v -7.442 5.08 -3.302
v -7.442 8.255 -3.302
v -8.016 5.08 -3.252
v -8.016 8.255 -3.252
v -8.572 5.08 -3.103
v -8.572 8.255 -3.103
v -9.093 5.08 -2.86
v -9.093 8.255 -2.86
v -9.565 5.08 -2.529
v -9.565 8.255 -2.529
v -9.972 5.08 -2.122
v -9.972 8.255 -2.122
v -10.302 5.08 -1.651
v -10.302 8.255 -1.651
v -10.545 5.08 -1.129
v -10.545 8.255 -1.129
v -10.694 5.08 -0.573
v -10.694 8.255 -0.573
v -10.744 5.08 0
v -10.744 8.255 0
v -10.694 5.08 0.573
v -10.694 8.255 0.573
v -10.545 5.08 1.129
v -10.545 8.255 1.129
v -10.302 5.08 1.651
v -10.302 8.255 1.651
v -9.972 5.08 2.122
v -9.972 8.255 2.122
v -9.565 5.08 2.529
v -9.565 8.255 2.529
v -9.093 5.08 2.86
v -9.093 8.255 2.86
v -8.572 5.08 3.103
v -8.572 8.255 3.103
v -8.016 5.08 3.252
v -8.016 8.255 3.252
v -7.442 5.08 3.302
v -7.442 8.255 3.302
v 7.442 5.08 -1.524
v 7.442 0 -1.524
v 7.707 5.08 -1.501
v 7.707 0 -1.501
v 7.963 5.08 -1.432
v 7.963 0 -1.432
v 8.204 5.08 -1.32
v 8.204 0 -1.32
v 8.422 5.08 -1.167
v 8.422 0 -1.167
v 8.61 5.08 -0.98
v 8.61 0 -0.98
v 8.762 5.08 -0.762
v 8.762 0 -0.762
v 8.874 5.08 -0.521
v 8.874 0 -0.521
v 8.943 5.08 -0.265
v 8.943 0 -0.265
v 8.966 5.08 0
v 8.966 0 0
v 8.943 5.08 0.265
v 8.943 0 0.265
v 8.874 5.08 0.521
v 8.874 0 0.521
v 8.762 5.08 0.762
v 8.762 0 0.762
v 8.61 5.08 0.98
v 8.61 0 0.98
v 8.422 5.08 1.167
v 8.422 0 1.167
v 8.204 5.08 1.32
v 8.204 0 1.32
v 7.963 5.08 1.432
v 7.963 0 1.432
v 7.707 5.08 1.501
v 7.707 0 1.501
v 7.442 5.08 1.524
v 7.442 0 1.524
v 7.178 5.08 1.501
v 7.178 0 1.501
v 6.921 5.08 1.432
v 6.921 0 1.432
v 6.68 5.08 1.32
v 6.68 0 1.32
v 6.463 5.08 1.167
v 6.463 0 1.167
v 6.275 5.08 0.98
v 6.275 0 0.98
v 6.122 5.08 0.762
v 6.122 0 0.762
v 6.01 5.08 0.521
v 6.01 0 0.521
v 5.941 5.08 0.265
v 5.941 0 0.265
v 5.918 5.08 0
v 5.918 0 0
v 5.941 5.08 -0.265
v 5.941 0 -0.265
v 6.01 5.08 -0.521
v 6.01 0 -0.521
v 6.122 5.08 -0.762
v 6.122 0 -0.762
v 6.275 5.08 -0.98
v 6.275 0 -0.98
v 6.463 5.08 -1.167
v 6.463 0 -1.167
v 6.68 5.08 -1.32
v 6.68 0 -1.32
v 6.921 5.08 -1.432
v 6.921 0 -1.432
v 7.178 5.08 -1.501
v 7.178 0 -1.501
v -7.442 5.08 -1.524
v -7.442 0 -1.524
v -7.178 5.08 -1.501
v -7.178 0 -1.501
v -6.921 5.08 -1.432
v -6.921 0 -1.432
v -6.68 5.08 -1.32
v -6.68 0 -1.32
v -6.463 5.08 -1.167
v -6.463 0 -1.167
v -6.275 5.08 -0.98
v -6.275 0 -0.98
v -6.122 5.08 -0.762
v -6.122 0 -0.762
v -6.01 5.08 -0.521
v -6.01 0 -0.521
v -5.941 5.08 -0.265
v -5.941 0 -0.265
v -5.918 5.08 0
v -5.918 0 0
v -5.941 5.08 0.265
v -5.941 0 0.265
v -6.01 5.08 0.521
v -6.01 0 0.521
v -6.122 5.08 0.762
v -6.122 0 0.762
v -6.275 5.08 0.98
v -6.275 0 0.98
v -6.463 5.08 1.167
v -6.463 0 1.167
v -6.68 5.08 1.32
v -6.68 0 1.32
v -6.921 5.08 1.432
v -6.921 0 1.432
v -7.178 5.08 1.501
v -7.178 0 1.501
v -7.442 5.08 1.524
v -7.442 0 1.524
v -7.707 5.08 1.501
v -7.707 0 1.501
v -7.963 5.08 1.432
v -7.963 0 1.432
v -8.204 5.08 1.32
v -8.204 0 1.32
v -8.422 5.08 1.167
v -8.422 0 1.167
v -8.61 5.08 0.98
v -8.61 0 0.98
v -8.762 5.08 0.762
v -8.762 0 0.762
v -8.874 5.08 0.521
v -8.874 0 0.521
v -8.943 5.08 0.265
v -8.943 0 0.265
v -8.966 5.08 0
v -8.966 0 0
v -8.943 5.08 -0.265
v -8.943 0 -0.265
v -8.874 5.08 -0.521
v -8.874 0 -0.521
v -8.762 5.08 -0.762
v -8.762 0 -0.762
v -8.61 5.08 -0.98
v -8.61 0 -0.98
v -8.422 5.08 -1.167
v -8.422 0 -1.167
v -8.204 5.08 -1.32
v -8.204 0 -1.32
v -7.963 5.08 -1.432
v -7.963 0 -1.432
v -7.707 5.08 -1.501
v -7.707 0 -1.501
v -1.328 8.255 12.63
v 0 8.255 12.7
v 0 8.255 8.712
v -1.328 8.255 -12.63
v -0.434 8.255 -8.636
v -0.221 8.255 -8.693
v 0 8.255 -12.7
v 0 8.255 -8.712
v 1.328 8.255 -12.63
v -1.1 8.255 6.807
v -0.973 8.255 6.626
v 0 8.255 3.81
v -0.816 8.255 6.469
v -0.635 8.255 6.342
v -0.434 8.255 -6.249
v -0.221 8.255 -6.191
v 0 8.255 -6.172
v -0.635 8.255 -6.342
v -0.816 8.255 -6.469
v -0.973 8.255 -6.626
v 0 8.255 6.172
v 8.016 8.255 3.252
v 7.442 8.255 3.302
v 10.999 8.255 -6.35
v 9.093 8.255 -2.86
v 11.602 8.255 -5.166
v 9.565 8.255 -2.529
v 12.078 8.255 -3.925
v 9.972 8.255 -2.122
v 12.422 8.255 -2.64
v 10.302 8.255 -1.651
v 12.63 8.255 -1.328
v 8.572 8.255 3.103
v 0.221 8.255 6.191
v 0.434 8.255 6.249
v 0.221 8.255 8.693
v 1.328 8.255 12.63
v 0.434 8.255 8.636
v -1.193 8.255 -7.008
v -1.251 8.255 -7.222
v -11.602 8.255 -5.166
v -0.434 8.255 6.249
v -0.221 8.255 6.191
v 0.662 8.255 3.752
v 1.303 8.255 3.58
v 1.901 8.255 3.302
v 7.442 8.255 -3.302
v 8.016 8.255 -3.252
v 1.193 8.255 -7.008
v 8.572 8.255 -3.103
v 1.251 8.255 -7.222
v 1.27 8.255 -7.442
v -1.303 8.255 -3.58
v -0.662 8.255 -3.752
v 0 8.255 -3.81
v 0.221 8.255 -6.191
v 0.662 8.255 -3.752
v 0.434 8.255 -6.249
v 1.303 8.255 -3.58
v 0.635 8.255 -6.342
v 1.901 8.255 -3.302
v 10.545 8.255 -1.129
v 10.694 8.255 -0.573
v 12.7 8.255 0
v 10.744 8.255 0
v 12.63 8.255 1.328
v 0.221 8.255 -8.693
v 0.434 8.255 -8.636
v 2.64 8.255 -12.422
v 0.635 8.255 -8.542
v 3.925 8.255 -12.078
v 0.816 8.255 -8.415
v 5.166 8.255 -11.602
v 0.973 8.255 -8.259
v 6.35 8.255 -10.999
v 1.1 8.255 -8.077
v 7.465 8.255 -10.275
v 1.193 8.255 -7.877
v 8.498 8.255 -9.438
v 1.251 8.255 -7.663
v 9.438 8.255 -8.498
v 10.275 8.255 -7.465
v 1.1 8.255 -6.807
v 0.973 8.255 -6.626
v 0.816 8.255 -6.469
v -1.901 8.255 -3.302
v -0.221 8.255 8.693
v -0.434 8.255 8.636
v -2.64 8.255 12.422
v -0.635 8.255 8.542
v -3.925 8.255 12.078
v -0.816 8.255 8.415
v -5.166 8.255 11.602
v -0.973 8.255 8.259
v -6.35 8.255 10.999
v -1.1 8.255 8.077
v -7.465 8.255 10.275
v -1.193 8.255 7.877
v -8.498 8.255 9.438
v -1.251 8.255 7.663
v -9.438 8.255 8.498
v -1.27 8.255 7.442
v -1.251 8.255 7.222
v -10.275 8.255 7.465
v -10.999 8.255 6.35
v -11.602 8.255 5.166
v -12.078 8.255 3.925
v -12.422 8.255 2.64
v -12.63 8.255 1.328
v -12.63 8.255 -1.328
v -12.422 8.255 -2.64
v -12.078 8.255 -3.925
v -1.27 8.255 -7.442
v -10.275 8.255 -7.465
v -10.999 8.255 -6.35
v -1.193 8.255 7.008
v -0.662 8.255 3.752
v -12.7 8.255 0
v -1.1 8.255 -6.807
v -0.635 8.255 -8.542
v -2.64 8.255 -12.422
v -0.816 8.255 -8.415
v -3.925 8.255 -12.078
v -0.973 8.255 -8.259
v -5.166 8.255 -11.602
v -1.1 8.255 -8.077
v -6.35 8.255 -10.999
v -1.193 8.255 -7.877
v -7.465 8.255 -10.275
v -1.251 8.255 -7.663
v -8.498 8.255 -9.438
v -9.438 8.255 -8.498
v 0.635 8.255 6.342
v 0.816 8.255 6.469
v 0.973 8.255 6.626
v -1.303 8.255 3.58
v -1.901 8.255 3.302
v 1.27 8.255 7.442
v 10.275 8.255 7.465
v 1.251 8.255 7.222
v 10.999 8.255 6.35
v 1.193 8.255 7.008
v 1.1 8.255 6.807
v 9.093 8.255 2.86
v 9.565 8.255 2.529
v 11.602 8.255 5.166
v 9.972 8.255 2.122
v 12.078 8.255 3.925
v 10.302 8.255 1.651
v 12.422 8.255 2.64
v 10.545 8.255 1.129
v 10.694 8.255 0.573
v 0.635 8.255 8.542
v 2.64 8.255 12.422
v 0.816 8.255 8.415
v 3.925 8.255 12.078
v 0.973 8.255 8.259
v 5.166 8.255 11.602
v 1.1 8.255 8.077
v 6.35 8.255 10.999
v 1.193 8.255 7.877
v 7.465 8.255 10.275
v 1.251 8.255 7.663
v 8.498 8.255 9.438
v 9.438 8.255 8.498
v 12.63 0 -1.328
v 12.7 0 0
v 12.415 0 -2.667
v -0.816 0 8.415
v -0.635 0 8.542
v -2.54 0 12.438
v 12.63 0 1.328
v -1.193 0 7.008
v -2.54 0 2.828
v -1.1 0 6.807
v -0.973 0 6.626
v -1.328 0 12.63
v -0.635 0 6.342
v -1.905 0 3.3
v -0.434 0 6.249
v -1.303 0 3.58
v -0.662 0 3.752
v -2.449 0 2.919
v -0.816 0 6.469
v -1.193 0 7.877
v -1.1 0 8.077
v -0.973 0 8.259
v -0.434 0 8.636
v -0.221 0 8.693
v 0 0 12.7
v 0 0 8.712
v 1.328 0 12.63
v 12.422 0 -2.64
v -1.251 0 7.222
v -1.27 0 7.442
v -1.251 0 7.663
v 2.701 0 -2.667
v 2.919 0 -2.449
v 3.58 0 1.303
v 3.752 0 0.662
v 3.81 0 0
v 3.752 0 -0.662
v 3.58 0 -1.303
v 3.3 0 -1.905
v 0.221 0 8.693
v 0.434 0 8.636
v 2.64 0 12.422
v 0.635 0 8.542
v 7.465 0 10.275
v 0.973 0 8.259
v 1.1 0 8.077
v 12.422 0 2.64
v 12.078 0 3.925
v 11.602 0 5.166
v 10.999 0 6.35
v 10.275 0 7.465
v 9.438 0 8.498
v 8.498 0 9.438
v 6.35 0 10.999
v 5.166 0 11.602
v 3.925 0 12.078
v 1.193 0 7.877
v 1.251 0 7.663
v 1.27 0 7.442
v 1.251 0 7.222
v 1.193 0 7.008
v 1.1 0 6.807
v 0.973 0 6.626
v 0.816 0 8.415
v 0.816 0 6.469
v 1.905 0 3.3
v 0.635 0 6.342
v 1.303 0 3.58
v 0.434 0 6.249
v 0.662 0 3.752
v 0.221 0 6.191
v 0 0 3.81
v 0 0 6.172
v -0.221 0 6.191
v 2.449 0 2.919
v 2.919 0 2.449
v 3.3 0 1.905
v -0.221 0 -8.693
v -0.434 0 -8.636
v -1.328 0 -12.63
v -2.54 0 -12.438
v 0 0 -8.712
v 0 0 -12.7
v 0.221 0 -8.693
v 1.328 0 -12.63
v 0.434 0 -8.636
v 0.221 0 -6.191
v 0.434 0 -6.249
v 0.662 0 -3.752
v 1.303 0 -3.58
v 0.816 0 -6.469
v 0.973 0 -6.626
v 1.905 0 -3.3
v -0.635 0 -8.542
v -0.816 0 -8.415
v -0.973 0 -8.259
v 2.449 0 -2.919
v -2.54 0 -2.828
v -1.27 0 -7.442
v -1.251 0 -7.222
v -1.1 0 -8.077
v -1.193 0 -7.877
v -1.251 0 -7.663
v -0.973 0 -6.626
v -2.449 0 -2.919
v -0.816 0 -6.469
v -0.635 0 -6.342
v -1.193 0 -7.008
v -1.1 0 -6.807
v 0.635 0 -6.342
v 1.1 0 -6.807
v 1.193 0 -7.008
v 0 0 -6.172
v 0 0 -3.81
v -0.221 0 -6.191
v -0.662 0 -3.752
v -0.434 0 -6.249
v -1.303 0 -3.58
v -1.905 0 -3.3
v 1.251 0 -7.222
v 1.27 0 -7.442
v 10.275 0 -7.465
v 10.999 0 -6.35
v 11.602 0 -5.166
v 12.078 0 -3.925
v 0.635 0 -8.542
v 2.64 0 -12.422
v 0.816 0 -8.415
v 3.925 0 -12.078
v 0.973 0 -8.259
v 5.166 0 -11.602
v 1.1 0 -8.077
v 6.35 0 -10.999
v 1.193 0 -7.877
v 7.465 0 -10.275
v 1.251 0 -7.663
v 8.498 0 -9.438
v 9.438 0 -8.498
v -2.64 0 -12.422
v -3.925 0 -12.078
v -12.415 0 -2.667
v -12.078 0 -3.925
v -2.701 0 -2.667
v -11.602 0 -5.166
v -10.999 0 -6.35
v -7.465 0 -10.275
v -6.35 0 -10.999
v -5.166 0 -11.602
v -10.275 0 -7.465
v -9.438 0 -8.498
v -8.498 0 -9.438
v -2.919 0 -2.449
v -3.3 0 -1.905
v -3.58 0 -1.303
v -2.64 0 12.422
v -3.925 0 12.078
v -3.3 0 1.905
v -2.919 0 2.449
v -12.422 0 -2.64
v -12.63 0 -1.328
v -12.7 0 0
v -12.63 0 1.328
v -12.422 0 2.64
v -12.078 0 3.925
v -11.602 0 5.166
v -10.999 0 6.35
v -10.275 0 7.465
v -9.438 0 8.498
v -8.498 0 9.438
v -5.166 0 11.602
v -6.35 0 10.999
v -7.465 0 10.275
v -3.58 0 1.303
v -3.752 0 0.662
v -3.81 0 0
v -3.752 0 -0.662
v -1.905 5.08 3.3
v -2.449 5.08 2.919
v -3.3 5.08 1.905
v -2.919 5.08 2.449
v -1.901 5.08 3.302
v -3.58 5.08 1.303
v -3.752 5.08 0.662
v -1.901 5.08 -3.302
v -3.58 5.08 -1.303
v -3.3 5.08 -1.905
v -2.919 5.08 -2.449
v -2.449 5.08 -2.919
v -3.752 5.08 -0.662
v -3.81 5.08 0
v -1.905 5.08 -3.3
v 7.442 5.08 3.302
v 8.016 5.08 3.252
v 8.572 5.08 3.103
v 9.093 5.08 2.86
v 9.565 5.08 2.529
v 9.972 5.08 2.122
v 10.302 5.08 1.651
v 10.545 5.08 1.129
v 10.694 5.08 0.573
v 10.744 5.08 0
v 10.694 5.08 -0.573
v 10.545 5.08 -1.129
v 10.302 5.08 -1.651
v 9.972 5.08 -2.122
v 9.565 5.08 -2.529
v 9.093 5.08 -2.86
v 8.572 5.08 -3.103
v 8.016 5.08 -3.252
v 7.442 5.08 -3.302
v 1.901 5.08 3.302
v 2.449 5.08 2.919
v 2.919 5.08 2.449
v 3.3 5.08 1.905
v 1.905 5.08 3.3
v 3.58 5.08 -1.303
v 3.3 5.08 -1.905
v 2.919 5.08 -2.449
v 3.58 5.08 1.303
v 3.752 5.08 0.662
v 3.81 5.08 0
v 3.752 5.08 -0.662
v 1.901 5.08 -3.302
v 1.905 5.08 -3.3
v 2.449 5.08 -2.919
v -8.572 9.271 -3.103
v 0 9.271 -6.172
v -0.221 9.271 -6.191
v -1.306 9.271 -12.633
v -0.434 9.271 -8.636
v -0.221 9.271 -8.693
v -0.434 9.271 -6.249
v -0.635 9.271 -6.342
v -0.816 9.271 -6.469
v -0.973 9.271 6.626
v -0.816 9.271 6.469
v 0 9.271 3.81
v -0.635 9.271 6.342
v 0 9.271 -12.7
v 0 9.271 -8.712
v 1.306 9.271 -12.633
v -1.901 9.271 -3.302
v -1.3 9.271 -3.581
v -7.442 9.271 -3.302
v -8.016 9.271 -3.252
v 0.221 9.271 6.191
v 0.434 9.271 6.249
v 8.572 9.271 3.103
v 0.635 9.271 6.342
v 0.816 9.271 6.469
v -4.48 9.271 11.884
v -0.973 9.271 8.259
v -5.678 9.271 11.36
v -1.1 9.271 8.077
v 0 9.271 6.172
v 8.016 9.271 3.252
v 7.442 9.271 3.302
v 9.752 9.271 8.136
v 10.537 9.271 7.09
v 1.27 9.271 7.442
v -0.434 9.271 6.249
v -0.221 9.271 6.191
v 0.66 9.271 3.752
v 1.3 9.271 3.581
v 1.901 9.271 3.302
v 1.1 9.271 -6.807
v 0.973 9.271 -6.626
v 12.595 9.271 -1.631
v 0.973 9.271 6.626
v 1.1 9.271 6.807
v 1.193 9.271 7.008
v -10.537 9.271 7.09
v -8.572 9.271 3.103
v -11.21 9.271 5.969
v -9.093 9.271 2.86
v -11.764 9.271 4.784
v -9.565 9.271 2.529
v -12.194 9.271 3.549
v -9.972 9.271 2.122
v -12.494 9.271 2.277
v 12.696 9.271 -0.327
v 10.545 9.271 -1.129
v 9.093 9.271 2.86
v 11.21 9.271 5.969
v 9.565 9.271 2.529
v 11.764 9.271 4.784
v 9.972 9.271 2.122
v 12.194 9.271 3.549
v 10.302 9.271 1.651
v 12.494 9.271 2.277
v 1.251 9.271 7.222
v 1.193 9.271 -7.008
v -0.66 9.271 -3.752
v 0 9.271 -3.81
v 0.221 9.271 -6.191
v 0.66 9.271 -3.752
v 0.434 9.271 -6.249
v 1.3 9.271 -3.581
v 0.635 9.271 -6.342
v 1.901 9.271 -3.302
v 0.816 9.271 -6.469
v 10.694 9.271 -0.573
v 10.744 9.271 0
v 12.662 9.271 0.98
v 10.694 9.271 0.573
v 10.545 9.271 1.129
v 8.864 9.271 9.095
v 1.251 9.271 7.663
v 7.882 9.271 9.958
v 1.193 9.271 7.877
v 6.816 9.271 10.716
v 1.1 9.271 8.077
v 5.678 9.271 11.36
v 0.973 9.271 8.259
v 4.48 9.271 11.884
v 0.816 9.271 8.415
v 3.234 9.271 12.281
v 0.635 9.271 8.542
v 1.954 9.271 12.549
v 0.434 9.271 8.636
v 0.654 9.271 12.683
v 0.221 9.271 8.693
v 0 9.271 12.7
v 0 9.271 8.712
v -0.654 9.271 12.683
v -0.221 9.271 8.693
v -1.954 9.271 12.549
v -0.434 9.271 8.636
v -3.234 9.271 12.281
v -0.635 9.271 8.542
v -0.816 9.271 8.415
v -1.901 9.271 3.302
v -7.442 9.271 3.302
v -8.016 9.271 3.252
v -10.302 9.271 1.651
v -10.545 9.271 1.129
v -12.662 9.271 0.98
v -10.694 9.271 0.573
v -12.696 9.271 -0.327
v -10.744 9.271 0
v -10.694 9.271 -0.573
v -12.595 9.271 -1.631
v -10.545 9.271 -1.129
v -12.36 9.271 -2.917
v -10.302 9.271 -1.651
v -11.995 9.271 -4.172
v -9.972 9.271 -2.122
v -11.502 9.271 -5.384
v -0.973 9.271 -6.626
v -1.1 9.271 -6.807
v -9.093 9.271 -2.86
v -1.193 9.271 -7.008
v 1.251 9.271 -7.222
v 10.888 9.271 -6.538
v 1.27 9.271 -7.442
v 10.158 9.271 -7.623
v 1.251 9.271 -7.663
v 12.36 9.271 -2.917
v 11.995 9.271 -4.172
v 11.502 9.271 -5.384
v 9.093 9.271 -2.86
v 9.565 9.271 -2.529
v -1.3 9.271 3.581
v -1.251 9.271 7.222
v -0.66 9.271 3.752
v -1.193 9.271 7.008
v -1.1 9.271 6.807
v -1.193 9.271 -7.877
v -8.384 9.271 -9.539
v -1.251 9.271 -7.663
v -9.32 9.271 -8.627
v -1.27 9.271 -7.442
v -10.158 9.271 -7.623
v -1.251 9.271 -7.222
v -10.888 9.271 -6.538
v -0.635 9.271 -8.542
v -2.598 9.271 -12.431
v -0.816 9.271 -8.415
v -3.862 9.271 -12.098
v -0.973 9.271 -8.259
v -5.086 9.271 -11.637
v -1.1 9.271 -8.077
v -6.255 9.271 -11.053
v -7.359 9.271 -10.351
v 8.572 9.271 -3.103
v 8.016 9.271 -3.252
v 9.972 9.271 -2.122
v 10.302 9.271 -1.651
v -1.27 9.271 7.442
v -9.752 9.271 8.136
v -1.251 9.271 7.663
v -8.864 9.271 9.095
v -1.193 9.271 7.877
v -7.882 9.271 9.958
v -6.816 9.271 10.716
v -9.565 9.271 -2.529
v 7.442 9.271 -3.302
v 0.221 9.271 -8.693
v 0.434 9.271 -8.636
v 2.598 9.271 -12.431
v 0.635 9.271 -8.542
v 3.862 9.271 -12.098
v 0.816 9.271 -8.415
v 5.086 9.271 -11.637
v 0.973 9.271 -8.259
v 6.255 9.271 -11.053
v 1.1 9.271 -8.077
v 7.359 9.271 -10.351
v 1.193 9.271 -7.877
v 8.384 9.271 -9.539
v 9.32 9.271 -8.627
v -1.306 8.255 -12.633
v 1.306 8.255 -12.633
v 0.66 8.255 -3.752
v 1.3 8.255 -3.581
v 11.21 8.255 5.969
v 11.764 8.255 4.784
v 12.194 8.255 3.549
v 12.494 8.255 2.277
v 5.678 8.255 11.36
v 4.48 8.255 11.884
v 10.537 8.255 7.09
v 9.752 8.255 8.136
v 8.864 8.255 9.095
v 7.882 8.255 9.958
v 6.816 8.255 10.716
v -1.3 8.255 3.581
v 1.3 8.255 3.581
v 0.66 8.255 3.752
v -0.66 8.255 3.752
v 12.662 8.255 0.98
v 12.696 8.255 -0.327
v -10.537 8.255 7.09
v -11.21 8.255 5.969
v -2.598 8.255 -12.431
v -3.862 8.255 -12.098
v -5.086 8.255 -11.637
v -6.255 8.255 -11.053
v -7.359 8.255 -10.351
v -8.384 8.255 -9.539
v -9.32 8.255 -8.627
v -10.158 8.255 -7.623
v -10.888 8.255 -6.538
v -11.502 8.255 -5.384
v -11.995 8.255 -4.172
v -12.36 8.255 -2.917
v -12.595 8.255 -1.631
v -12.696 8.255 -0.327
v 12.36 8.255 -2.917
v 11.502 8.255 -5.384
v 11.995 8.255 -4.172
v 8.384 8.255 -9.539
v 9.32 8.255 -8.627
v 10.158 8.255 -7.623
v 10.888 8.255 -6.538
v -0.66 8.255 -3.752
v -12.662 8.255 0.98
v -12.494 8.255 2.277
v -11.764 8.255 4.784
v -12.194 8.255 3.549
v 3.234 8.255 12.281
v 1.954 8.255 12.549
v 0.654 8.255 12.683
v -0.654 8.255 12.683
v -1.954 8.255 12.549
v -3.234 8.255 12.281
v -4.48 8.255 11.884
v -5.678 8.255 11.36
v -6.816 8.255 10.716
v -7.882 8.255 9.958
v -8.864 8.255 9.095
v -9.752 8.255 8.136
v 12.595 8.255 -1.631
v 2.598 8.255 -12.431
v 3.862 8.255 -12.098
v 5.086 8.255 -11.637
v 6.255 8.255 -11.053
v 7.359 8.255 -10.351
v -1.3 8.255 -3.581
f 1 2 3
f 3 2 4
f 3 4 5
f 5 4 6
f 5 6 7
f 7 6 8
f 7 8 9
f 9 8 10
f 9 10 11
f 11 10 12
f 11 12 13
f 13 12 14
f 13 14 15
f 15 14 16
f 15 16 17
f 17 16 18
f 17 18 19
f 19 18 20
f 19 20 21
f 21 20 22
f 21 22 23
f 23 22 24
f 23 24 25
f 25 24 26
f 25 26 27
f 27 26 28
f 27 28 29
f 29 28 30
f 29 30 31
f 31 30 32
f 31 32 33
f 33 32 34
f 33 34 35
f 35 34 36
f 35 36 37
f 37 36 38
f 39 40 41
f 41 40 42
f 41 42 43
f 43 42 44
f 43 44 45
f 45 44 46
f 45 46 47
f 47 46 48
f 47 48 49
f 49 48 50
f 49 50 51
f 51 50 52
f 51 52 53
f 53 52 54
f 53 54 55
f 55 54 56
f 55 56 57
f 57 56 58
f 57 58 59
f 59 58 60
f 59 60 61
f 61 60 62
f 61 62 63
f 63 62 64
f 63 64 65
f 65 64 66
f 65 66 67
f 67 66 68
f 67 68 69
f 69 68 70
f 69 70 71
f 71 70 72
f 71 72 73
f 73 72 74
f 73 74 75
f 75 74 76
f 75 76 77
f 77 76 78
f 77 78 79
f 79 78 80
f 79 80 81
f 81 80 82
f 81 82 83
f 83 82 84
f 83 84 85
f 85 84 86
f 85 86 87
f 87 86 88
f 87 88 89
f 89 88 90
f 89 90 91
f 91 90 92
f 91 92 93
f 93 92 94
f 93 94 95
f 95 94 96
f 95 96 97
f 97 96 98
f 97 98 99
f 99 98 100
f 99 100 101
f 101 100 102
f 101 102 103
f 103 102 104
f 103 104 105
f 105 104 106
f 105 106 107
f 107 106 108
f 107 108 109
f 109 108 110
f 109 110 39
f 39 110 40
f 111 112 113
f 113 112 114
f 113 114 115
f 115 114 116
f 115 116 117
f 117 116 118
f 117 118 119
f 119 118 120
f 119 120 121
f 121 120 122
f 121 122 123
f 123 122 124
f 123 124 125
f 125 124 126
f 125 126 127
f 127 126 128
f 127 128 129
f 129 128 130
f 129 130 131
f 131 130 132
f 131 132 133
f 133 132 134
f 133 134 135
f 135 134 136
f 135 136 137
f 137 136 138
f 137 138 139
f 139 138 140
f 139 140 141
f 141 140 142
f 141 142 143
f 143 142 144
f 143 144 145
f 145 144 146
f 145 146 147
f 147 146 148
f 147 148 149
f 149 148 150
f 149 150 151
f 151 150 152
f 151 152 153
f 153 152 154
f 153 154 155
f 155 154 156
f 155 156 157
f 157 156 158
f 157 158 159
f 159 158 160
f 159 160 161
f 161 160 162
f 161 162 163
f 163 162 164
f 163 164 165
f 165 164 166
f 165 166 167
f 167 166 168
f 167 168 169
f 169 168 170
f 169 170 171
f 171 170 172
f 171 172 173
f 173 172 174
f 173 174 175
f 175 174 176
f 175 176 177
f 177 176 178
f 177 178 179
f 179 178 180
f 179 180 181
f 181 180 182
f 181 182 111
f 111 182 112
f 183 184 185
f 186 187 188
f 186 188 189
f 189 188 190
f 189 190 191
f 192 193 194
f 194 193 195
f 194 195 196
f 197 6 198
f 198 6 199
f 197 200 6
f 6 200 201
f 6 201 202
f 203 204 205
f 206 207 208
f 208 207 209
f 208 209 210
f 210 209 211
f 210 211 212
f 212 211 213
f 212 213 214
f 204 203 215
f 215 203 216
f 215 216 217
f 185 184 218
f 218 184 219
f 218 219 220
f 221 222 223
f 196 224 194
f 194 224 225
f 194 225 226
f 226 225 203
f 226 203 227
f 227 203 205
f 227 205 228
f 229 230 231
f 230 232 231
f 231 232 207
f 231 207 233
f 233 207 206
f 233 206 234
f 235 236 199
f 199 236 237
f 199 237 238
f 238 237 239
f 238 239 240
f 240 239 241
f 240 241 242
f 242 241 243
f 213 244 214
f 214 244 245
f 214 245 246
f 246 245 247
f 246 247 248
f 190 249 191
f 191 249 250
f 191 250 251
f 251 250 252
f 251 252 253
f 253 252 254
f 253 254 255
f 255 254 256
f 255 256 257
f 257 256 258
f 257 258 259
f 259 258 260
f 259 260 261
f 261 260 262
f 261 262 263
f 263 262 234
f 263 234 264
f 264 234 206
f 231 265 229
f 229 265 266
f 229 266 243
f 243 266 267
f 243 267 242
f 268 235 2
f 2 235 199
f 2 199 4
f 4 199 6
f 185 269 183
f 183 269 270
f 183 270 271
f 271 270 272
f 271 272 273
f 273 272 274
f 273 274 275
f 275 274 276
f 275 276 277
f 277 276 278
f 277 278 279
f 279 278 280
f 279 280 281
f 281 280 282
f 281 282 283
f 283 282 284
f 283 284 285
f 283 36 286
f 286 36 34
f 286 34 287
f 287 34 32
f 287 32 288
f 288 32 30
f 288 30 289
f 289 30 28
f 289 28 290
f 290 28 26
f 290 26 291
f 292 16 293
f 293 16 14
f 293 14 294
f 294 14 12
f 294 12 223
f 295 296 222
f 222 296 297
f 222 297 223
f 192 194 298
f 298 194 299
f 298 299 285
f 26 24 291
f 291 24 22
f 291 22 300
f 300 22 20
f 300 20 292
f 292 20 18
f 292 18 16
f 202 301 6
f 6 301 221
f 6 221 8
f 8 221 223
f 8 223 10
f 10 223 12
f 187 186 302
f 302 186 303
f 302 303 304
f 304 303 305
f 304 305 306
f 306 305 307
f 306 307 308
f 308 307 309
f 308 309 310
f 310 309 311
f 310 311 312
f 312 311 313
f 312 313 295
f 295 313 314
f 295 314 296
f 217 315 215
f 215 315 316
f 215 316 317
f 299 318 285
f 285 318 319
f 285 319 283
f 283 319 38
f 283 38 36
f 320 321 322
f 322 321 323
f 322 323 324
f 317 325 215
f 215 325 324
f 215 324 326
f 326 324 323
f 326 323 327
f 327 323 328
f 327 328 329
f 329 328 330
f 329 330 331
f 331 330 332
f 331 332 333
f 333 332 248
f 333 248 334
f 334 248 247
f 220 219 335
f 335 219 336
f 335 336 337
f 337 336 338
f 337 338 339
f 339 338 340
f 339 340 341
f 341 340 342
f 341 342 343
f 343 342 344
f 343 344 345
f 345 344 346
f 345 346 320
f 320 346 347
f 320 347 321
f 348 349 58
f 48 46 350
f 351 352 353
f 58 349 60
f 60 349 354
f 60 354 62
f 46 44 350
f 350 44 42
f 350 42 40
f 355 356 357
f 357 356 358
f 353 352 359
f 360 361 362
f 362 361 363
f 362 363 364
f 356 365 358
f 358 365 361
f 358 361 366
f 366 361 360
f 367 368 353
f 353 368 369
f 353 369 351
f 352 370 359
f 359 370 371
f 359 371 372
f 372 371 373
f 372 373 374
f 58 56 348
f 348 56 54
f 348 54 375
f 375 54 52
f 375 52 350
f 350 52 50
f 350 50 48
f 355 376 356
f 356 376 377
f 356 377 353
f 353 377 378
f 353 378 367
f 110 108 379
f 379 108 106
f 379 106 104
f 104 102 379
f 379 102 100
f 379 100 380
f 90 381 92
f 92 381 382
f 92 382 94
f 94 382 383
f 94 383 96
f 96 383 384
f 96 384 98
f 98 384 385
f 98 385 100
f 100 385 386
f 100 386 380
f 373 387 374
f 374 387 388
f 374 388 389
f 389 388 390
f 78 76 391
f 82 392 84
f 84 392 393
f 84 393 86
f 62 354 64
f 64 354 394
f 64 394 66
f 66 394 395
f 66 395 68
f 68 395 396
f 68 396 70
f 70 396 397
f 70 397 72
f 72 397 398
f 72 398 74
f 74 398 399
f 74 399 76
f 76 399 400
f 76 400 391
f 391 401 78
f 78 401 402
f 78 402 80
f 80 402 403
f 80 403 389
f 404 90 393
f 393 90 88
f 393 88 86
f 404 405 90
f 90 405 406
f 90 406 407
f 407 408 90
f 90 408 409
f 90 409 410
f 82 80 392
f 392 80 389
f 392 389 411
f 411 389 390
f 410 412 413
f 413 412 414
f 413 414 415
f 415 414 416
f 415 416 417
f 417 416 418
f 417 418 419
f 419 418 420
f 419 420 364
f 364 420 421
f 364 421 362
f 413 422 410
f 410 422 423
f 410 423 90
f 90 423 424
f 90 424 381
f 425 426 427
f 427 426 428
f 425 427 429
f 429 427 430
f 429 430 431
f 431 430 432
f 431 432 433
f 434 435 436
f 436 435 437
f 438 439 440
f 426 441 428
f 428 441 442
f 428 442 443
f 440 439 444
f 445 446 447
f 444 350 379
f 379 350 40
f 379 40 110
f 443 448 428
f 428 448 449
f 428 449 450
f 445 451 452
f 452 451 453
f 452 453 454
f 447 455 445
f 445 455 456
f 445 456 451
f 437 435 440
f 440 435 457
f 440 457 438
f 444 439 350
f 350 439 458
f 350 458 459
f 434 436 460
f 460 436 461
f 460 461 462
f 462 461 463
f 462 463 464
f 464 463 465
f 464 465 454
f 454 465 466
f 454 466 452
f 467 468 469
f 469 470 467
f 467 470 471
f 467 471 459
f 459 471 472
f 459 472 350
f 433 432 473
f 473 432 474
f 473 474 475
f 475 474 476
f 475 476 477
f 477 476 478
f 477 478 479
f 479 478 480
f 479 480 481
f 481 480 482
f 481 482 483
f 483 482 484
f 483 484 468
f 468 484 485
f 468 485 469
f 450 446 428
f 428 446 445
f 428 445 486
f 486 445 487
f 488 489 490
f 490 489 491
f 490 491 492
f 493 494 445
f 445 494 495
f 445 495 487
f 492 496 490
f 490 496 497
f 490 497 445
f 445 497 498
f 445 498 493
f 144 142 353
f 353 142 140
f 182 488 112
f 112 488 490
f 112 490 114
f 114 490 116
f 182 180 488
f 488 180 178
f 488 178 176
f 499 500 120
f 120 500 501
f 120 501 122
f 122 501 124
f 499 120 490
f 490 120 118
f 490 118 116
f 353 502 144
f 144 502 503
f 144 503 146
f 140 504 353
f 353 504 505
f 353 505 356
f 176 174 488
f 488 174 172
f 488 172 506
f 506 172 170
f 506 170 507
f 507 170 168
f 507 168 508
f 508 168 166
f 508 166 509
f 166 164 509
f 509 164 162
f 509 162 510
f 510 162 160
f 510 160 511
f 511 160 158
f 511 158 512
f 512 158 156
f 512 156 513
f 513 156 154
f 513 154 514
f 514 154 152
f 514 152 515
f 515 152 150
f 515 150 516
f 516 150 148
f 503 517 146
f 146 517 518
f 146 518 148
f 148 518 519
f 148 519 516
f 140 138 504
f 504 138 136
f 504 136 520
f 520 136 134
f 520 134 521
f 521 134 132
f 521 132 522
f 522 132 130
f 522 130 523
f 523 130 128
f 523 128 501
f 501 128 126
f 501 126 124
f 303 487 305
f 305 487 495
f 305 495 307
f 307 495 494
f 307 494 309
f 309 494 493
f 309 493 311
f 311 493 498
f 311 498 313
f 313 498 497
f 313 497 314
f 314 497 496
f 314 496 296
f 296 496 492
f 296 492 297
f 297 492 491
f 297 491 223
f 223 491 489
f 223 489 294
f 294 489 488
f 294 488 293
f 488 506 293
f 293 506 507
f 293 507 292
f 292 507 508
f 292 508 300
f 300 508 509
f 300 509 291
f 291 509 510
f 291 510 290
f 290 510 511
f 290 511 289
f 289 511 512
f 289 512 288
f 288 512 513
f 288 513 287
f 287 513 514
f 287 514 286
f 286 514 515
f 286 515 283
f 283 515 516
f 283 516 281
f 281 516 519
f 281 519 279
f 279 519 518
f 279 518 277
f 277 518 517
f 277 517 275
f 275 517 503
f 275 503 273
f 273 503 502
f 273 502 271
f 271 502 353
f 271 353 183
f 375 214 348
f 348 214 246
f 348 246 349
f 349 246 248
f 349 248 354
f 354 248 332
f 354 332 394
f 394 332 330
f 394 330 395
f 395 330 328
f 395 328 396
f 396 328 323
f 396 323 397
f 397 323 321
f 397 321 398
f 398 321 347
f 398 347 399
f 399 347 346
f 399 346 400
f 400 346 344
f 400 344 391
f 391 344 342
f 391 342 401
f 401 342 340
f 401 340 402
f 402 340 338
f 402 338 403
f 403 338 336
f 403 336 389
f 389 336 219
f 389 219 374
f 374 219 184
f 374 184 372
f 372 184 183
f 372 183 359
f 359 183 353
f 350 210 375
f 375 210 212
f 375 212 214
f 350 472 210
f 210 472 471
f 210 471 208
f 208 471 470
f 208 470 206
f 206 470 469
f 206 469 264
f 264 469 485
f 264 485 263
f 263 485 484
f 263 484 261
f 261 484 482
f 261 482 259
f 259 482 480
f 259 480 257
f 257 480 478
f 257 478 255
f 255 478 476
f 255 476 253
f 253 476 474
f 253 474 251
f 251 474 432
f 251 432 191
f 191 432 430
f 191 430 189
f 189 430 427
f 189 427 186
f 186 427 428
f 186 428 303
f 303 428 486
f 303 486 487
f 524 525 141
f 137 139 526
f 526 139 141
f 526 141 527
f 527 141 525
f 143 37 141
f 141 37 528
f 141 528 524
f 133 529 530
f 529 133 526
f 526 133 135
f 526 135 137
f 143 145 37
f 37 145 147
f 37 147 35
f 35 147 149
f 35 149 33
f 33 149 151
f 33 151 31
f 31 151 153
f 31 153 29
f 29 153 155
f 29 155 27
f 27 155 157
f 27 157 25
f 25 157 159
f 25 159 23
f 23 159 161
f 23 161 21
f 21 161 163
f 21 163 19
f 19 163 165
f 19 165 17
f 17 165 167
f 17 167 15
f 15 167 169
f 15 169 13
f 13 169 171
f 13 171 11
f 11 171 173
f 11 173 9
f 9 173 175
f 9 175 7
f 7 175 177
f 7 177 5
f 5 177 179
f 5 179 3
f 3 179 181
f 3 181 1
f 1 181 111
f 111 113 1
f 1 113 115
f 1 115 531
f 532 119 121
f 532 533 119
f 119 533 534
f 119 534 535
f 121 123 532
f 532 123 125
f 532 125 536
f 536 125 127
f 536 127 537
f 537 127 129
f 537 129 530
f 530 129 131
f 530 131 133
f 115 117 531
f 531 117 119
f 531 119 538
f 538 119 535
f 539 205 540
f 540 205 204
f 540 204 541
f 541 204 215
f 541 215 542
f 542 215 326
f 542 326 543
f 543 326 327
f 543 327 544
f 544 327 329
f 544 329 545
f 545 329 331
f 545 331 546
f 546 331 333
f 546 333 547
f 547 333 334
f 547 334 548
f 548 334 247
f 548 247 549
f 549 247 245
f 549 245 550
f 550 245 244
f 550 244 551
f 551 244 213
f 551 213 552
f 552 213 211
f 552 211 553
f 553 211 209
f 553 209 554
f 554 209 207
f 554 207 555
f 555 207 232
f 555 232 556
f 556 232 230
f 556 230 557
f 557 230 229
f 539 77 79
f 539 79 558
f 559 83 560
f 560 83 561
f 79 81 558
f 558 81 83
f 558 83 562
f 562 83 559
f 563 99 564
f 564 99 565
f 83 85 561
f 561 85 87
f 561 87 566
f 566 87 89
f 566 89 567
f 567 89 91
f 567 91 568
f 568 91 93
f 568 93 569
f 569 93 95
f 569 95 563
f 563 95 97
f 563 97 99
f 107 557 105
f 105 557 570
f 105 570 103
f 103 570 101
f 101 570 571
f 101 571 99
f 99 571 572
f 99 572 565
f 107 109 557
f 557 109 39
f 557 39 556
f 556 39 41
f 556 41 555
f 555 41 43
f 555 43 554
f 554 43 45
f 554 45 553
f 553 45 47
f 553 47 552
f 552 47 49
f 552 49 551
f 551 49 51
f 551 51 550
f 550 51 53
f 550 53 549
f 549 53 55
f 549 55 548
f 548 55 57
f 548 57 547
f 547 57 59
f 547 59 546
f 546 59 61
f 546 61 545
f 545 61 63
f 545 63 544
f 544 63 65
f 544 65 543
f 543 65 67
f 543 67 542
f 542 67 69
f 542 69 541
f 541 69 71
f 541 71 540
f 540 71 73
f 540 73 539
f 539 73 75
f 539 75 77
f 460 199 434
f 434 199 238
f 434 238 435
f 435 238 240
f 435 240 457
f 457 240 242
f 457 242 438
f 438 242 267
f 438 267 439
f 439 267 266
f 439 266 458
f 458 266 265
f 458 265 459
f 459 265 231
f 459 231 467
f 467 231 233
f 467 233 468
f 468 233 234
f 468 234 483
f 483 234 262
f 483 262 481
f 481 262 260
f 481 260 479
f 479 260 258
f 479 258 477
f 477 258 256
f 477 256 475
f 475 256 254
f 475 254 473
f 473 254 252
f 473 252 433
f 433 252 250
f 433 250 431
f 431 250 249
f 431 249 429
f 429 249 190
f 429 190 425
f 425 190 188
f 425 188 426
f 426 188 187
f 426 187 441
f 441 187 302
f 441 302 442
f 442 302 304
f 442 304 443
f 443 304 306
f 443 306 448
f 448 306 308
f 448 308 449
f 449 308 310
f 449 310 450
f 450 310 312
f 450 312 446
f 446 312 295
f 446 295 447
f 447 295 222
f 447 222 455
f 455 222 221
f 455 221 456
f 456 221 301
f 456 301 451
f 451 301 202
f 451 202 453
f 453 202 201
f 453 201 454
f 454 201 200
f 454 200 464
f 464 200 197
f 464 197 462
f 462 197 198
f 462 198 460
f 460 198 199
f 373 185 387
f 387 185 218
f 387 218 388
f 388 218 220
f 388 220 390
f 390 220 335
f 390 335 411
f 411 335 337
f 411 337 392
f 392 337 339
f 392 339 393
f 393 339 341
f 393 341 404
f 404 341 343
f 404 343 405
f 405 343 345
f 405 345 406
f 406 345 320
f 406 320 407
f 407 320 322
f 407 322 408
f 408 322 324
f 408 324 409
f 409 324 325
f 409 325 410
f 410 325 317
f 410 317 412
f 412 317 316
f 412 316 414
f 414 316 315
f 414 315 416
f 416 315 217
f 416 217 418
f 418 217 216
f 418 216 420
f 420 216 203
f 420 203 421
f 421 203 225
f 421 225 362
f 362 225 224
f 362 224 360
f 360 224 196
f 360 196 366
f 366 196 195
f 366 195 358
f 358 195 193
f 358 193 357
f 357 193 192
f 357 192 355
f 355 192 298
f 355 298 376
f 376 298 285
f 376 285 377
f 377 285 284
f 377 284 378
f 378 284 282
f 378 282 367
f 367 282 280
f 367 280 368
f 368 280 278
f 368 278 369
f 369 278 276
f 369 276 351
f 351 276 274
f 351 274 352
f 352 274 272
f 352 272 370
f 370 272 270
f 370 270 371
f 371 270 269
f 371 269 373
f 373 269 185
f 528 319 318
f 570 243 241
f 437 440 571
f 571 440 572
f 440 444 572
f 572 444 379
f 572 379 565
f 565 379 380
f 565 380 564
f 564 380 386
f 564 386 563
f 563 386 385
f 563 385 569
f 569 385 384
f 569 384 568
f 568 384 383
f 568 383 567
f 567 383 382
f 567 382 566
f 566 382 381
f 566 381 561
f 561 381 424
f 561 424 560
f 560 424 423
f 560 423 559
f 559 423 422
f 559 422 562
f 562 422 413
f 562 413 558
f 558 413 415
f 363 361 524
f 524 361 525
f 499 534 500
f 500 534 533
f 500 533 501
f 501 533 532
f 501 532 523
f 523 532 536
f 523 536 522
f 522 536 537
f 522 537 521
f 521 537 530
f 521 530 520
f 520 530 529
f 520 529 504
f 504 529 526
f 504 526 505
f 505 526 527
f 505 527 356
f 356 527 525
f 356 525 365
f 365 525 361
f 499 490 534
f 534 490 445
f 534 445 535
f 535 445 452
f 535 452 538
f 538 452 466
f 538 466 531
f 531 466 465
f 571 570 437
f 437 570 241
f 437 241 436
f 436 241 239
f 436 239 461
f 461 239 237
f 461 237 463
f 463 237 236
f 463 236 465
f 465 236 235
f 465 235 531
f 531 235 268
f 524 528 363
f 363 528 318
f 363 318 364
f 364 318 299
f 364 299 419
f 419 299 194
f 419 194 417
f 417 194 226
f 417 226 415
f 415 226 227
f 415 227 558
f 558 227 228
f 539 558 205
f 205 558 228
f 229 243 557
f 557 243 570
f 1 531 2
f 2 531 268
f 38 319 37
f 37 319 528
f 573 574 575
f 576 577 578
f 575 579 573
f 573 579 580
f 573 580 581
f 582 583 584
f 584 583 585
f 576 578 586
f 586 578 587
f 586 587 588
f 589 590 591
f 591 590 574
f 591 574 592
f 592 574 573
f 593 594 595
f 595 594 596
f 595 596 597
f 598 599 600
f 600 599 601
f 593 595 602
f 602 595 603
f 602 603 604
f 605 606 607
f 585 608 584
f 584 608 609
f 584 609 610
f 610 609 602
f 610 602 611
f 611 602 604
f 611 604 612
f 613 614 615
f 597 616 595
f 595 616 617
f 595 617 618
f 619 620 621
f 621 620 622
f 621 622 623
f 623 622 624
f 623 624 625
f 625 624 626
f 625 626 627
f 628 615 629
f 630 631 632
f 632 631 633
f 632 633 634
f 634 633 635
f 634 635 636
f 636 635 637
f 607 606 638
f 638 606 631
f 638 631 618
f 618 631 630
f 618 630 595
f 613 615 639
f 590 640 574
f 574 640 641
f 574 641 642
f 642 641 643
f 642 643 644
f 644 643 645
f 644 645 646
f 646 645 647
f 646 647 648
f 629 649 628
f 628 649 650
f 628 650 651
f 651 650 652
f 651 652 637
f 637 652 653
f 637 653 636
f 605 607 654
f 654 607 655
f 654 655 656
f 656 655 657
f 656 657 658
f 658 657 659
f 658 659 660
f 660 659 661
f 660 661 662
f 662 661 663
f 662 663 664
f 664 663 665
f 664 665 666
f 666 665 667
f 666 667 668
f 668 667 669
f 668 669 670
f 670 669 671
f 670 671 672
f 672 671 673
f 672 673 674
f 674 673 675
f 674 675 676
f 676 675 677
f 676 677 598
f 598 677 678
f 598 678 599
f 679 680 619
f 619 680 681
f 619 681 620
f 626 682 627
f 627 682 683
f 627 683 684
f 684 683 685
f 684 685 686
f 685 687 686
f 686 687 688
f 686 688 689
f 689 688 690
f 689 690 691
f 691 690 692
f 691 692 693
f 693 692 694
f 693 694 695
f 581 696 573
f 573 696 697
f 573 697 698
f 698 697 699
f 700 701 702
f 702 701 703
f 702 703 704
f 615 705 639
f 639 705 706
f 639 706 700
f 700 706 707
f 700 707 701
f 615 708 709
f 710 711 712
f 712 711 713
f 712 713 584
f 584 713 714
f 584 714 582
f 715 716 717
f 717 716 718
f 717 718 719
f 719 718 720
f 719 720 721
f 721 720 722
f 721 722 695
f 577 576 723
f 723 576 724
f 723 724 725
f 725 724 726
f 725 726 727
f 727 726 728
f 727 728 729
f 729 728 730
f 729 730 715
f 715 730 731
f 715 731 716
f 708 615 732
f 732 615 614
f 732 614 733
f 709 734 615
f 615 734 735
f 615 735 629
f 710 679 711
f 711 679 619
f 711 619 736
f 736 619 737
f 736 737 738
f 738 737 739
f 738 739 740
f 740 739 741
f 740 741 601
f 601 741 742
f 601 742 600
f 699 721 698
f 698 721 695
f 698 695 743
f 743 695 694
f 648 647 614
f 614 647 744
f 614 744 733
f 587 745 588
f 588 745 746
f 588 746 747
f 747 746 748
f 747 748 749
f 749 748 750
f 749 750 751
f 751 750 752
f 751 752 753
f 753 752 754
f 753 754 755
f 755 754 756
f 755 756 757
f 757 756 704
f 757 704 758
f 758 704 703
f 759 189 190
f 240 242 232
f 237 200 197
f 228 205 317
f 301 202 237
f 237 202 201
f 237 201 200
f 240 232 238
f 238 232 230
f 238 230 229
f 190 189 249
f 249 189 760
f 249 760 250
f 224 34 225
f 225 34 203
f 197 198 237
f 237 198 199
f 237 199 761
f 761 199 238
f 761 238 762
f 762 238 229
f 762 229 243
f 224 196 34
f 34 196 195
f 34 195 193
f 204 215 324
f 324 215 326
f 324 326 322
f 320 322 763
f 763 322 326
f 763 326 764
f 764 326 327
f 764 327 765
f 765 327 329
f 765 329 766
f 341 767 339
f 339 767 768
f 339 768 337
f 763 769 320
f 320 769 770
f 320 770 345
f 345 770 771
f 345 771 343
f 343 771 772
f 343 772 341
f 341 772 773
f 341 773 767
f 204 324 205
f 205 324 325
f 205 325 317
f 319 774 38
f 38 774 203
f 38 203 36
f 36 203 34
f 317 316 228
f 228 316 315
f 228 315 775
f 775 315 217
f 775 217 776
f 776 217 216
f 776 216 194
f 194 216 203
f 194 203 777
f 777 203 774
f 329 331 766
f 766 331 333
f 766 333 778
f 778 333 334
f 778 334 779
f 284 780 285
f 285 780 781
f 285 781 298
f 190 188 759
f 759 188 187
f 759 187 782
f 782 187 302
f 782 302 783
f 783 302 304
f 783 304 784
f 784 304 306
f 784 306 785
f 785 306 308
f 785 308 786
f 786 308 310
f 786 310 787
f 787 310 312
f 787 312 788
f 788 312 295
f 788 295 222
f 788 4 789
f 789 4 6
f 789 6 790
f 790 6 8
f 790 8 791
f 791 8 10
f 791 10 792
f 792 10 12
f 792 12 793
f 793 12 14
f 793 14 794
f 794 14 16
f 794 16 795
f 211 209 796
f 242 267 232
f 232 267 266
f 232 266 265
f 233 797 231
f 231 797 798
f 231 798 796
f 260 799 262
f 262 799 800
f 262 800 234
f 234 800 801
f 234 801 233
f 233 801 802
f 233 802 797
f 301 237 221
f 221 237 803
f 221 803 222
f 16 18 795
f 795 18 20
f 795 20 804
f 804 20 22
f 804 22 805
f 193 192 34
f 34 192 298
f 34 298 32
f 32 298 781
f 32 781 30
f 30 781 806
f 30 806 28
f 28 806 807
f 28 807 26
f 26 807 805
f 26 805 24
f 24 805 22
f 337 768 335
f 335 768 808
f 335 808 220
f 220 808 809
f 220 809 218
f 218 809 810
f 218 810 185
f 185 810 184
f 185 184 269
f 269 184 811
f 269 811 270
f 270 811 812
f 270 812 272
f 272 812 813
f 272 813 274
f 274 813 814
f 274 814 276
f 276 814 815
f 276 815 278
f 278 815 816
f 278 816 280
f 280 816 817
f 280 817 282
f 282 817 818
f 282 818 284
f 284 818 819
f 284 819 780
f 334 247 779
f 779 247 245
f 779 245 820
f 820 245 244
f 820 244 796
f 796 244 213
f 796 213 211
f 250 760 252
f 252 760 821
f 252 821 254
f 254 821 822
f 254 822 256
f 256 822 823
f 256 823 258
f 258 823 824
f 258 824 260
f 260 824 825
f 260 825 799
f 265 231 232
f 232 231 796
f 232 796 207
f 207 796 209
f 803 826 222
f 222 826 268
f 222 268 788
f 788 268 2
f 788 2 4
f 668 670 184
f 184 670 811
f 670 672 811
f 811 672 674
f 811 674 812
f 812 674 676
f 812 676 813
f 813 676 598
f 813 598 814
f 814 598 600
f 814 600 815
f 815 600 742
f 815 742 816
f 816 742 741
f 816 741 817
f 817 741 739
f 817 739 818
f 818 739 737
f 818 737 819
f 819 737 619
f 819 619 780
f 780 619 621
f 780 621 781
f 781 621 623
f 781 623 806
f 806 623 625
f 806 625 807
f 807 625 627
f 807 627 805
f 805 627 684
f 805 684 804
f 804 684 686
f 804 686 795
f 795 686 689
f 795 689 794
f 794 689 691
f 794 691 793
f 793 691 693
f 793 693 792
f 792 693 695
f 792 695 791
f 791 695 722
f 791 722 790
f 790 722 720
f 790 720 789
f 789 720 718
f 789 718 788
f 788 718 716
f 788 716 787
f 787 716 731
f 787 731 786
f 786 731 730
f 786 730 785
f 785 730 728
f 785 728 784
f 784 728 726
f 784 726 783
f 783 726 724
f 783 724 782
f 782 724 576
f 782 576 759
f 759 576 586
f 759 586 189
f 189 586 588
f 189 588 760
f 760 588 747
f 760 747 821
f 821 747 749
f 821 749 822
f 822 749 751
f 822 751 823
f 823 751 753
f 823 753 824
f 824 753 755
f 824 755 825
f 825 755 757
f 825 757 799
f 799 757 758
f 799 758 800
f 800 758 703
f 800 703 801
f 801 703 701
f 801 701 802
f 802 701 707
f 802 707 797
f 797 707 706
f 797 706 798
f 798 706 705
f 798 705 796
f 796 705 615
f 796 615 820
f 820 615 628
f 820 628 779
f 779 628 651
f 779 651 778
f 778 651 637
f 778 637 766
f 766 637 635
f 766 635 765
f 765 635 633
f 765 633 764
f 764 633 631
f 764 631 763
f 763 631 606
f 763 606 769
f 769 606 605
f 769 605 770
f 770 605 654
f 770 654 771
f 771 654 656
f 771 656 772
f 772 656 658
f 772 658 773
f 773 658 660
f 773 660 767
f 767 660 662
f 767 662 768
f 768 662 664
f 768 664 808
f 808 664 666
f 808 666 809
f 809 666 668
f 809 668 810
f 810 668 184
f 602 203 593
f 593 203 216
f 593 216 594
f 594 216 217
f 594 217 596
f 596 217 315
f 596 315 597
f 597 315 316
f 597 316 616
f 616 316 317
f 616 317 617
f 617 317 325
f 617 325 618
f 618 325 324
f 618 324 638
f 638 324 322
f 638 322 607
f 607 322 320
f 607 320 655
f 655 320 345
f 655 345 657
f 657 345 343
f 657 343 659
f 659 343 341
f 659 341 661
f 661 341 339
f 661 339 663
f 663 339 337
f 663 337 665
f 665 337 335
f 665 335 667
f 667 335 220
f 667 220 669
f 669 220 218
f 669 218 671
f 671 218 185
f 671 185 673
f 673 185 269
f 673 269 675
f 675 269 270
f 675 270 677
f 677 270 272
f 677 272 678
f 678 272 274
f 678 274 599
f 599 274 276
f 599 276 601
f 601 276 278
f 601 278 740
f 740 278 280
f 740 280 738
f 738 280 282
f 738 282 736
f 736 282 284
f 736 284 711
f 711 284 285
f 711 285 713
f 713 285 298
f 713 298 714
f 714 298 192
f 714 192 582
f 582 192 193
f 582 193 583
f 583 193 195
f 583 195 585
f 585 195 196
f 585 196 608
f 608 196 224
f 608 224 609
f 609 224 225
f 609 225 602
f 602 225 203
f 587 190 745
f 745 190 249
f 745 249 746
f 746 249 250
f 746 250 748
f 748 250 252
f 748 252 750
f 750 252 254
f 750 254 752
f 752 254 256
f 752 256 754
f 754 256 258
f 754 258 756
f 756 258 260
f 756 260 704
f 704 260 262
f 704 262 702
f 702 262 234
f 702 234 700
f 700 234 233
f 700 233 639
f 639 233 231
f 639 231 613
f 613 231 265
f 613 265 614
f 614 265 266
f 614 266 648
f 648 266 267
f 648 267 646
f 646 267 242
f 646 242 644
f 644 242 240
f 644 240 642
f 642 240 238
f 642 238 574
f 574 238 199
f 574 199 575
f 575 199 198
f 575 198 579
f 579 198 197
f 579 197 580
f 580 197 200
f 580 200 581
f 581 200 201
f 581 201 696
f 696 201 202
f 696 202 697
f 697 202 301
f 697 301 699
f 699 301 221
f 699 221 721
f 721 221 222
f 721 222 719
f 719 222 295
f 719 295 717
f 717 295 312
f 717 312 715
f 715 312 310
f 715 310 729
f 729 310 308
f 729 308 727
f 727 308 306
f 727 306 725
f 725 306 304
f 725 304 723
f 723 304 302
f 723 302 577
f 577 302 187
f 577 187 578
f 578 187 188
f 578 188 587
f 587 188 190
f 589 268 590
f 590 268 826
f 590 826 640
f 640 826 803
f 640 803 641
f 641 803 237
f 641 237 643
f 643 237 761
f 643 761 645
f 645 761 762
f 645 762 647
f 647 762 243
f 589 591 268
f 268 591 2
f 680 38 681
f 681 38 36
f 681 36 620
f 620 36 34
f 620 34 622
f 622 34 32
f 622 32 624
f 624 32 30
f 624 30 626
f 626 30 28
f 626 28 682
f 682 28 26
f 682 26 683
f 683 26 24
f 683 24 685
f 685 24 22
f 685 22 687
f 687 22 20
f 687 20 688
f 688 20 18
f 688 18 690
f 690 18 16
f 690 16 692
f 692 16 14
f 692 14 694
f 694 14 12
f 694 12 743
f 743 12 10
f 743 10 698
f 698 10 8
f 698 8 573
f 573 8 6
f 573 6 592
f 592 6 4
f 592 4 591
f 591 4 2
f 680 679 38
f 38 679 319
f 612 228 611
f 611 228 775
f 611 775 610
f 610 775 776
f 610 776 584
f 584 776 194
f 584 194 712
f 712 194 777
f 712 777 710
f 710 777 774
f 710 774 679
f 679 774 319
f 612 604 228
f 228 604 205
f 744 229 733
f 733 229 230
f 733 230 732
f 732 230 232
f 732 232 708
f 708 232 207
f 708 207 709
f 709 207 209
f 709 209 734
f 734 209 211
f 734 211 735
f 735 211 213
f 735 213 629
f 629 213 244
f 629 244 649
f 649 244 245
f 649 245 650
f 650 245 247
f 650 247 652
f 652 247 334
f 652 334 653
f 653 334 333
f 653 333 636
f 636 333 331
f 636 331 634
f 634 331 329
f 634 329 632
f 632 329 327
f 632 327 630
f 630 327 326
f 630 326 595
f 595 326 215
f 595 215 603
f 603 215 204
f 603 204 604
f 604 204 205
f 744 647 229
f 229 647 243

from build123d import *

# Parameters (mm, degrees)
SKETCH1_R           = 12.7
SKETCH1_R_2         = 1.524
BOSS_EXTRUDE1_DEPTH = 8.255
SKETCH2_R           = 3.302
CUT_EXTRUDE_R_DEPTH = 3.175
SKETCH3_R           = 1.27
CUT_EXTRUDE2_DEPTH  = 9.255
SKETCH4_R           = 3.81
CUT_EXTRUDE3_DEPTH  = 9.255
CUT_EXTRUDE4_DEPTH  = 3.175
SKETCH6_R           = 12.7
SKETCH6_R_2         = 1.27
EXTRA_HEIGHT_DEPTH  = 1.016


with BuildPart() as part:
    # Sketch1 → Boss-Extrude1 (new body)
    with BuildSketch(Plane(origin=(0, 0, 0), x_dir=(1, 0, 0), z_dir=(0, 1, 0))):
        Circle(SKETCH1_R)
        with Locations((7.4422, 0)):
            Circle(SKETCH1_R_2, mode=Mode.SUBTRACT)
        with Locations((-7.4422, 0)):
            Circle(SKETCH1_R_2, mode=Mode.SUBTRACT)
    extrude(amount=BOSS_EXTRUDE1_DEPTH)

    # Sketch2 → Cut-Extrude r (cut)
    with BuildSketch(Plane(origin=(0, 8.255, 0), x_dir=(1, 0, 0), z_dir=(0, 1, 0))):
        with Locations((-7.4422, 0)):
            Circle(SKETCH2_R)
        with Locations((7.4422, 0)):
            Circle(SKETCH2_R)
    extrude(amount=-CUT_EXTRUDE_R_DEPTH, mode=Mode.SUBTRACT)

    # Sketch3 → Cut-Extrude2 (cut, through all)
    with BuildSketch(Plane(origin=(0, 8.255, 0), x_dir=(1, 0, 0), z_dir=(0, 1, 0))):
        with Locations((0, -7.4422)):
            Circle(SKETCH3_R)
        with Locations((0, 7.4422)):
            Circle(SKETCH3_R)
    extrude(amount=-CUT_EXTRUDE2_DEPTH, mode=Mode.SUBTRACT)

    # Sketch4 → Cut-Extrude3 (cut, through all)
    with BuildSketch(Plane(origin=(0, 8.255, 0), x_dir=(1, 0, 0), z_dir=(0, 1, 0))):
        Circle(SKETCH4_R)
    extrude(amount=-CUT_EXTRUDE3_DEPTH, mode=Mode.SUBTRACT)

    # Sketch5 → Cut-Extrude4 (cut)
    with BuildSketch(Plane(origin=(0, 8.255, 0), x_dir=(1, 0, 0), z_dir=(0, 1, 0))):
        with BuildLine():
            Line((-7.4422, 3.302), (7.4422, 3.302))
            ThreePointArc((7.4422, 3.302), (10.7442, 0), (7.4422, -3.302))
            Line((7.4422, -3.302), (-7.4422, -3.302))
            ThreePointArc((-7.4422, -3.302), (-10.7442, 0), (-7.4422, 3.302))
        make_face()
    extrude(amount=-CUT_EXTRUDE4_DEPTH, mode=Mode.SUBTRACT)


with BuildPart() as body_2:
    # Sketch6 → Extra_Height (new body)
    with BuildSketch(Plane(origin=(0, 8.255, 0), x_dir=(1, 0, 0), z_dir=(0, 1, 0))):
        Circle(SKETCH6_R)
        with Locations((0, -7.4422)):
            Circle(SKETCH6_R_2, mode=Mode.SUBTRACT)
        with Locations((0, 7.4422)):
            Circle(SKETCH6_R_2, mode=Mode.SUBTRACT)
        with BuildLine():
            Line((-1.900761952, 3.302), (-7.4422, 3.302))
            ThreePointArc((-7.4422, 3.302), (-10.7442, 0), (-7.4422, -3.302))
            Line((-7.4422, -3.302), (-1.900761952, -3.302))
            ThreePointArc((-1.900761952, -3.302), (0, -3.81), (1.900761952, -3.302))
            Line((1.900761952, -3.302), (7.4422, -3.302))
            ThreePointArc((7.4422, -3.302), (10.7442, 0), (7.4422, 3.302))
            Line((7.4422, 3.302), (1.900761952, 3.302))
            ThreePointArc((1.900761952, 3.302), (0, 3.81), (-1.900761952, 3.302))
        make_face(mode=Mode.SUBTRACT)
    extrude(amount=EXTRA_HEIGHT_DEPTH)


solid = Compound([part.part, body_2.part])
